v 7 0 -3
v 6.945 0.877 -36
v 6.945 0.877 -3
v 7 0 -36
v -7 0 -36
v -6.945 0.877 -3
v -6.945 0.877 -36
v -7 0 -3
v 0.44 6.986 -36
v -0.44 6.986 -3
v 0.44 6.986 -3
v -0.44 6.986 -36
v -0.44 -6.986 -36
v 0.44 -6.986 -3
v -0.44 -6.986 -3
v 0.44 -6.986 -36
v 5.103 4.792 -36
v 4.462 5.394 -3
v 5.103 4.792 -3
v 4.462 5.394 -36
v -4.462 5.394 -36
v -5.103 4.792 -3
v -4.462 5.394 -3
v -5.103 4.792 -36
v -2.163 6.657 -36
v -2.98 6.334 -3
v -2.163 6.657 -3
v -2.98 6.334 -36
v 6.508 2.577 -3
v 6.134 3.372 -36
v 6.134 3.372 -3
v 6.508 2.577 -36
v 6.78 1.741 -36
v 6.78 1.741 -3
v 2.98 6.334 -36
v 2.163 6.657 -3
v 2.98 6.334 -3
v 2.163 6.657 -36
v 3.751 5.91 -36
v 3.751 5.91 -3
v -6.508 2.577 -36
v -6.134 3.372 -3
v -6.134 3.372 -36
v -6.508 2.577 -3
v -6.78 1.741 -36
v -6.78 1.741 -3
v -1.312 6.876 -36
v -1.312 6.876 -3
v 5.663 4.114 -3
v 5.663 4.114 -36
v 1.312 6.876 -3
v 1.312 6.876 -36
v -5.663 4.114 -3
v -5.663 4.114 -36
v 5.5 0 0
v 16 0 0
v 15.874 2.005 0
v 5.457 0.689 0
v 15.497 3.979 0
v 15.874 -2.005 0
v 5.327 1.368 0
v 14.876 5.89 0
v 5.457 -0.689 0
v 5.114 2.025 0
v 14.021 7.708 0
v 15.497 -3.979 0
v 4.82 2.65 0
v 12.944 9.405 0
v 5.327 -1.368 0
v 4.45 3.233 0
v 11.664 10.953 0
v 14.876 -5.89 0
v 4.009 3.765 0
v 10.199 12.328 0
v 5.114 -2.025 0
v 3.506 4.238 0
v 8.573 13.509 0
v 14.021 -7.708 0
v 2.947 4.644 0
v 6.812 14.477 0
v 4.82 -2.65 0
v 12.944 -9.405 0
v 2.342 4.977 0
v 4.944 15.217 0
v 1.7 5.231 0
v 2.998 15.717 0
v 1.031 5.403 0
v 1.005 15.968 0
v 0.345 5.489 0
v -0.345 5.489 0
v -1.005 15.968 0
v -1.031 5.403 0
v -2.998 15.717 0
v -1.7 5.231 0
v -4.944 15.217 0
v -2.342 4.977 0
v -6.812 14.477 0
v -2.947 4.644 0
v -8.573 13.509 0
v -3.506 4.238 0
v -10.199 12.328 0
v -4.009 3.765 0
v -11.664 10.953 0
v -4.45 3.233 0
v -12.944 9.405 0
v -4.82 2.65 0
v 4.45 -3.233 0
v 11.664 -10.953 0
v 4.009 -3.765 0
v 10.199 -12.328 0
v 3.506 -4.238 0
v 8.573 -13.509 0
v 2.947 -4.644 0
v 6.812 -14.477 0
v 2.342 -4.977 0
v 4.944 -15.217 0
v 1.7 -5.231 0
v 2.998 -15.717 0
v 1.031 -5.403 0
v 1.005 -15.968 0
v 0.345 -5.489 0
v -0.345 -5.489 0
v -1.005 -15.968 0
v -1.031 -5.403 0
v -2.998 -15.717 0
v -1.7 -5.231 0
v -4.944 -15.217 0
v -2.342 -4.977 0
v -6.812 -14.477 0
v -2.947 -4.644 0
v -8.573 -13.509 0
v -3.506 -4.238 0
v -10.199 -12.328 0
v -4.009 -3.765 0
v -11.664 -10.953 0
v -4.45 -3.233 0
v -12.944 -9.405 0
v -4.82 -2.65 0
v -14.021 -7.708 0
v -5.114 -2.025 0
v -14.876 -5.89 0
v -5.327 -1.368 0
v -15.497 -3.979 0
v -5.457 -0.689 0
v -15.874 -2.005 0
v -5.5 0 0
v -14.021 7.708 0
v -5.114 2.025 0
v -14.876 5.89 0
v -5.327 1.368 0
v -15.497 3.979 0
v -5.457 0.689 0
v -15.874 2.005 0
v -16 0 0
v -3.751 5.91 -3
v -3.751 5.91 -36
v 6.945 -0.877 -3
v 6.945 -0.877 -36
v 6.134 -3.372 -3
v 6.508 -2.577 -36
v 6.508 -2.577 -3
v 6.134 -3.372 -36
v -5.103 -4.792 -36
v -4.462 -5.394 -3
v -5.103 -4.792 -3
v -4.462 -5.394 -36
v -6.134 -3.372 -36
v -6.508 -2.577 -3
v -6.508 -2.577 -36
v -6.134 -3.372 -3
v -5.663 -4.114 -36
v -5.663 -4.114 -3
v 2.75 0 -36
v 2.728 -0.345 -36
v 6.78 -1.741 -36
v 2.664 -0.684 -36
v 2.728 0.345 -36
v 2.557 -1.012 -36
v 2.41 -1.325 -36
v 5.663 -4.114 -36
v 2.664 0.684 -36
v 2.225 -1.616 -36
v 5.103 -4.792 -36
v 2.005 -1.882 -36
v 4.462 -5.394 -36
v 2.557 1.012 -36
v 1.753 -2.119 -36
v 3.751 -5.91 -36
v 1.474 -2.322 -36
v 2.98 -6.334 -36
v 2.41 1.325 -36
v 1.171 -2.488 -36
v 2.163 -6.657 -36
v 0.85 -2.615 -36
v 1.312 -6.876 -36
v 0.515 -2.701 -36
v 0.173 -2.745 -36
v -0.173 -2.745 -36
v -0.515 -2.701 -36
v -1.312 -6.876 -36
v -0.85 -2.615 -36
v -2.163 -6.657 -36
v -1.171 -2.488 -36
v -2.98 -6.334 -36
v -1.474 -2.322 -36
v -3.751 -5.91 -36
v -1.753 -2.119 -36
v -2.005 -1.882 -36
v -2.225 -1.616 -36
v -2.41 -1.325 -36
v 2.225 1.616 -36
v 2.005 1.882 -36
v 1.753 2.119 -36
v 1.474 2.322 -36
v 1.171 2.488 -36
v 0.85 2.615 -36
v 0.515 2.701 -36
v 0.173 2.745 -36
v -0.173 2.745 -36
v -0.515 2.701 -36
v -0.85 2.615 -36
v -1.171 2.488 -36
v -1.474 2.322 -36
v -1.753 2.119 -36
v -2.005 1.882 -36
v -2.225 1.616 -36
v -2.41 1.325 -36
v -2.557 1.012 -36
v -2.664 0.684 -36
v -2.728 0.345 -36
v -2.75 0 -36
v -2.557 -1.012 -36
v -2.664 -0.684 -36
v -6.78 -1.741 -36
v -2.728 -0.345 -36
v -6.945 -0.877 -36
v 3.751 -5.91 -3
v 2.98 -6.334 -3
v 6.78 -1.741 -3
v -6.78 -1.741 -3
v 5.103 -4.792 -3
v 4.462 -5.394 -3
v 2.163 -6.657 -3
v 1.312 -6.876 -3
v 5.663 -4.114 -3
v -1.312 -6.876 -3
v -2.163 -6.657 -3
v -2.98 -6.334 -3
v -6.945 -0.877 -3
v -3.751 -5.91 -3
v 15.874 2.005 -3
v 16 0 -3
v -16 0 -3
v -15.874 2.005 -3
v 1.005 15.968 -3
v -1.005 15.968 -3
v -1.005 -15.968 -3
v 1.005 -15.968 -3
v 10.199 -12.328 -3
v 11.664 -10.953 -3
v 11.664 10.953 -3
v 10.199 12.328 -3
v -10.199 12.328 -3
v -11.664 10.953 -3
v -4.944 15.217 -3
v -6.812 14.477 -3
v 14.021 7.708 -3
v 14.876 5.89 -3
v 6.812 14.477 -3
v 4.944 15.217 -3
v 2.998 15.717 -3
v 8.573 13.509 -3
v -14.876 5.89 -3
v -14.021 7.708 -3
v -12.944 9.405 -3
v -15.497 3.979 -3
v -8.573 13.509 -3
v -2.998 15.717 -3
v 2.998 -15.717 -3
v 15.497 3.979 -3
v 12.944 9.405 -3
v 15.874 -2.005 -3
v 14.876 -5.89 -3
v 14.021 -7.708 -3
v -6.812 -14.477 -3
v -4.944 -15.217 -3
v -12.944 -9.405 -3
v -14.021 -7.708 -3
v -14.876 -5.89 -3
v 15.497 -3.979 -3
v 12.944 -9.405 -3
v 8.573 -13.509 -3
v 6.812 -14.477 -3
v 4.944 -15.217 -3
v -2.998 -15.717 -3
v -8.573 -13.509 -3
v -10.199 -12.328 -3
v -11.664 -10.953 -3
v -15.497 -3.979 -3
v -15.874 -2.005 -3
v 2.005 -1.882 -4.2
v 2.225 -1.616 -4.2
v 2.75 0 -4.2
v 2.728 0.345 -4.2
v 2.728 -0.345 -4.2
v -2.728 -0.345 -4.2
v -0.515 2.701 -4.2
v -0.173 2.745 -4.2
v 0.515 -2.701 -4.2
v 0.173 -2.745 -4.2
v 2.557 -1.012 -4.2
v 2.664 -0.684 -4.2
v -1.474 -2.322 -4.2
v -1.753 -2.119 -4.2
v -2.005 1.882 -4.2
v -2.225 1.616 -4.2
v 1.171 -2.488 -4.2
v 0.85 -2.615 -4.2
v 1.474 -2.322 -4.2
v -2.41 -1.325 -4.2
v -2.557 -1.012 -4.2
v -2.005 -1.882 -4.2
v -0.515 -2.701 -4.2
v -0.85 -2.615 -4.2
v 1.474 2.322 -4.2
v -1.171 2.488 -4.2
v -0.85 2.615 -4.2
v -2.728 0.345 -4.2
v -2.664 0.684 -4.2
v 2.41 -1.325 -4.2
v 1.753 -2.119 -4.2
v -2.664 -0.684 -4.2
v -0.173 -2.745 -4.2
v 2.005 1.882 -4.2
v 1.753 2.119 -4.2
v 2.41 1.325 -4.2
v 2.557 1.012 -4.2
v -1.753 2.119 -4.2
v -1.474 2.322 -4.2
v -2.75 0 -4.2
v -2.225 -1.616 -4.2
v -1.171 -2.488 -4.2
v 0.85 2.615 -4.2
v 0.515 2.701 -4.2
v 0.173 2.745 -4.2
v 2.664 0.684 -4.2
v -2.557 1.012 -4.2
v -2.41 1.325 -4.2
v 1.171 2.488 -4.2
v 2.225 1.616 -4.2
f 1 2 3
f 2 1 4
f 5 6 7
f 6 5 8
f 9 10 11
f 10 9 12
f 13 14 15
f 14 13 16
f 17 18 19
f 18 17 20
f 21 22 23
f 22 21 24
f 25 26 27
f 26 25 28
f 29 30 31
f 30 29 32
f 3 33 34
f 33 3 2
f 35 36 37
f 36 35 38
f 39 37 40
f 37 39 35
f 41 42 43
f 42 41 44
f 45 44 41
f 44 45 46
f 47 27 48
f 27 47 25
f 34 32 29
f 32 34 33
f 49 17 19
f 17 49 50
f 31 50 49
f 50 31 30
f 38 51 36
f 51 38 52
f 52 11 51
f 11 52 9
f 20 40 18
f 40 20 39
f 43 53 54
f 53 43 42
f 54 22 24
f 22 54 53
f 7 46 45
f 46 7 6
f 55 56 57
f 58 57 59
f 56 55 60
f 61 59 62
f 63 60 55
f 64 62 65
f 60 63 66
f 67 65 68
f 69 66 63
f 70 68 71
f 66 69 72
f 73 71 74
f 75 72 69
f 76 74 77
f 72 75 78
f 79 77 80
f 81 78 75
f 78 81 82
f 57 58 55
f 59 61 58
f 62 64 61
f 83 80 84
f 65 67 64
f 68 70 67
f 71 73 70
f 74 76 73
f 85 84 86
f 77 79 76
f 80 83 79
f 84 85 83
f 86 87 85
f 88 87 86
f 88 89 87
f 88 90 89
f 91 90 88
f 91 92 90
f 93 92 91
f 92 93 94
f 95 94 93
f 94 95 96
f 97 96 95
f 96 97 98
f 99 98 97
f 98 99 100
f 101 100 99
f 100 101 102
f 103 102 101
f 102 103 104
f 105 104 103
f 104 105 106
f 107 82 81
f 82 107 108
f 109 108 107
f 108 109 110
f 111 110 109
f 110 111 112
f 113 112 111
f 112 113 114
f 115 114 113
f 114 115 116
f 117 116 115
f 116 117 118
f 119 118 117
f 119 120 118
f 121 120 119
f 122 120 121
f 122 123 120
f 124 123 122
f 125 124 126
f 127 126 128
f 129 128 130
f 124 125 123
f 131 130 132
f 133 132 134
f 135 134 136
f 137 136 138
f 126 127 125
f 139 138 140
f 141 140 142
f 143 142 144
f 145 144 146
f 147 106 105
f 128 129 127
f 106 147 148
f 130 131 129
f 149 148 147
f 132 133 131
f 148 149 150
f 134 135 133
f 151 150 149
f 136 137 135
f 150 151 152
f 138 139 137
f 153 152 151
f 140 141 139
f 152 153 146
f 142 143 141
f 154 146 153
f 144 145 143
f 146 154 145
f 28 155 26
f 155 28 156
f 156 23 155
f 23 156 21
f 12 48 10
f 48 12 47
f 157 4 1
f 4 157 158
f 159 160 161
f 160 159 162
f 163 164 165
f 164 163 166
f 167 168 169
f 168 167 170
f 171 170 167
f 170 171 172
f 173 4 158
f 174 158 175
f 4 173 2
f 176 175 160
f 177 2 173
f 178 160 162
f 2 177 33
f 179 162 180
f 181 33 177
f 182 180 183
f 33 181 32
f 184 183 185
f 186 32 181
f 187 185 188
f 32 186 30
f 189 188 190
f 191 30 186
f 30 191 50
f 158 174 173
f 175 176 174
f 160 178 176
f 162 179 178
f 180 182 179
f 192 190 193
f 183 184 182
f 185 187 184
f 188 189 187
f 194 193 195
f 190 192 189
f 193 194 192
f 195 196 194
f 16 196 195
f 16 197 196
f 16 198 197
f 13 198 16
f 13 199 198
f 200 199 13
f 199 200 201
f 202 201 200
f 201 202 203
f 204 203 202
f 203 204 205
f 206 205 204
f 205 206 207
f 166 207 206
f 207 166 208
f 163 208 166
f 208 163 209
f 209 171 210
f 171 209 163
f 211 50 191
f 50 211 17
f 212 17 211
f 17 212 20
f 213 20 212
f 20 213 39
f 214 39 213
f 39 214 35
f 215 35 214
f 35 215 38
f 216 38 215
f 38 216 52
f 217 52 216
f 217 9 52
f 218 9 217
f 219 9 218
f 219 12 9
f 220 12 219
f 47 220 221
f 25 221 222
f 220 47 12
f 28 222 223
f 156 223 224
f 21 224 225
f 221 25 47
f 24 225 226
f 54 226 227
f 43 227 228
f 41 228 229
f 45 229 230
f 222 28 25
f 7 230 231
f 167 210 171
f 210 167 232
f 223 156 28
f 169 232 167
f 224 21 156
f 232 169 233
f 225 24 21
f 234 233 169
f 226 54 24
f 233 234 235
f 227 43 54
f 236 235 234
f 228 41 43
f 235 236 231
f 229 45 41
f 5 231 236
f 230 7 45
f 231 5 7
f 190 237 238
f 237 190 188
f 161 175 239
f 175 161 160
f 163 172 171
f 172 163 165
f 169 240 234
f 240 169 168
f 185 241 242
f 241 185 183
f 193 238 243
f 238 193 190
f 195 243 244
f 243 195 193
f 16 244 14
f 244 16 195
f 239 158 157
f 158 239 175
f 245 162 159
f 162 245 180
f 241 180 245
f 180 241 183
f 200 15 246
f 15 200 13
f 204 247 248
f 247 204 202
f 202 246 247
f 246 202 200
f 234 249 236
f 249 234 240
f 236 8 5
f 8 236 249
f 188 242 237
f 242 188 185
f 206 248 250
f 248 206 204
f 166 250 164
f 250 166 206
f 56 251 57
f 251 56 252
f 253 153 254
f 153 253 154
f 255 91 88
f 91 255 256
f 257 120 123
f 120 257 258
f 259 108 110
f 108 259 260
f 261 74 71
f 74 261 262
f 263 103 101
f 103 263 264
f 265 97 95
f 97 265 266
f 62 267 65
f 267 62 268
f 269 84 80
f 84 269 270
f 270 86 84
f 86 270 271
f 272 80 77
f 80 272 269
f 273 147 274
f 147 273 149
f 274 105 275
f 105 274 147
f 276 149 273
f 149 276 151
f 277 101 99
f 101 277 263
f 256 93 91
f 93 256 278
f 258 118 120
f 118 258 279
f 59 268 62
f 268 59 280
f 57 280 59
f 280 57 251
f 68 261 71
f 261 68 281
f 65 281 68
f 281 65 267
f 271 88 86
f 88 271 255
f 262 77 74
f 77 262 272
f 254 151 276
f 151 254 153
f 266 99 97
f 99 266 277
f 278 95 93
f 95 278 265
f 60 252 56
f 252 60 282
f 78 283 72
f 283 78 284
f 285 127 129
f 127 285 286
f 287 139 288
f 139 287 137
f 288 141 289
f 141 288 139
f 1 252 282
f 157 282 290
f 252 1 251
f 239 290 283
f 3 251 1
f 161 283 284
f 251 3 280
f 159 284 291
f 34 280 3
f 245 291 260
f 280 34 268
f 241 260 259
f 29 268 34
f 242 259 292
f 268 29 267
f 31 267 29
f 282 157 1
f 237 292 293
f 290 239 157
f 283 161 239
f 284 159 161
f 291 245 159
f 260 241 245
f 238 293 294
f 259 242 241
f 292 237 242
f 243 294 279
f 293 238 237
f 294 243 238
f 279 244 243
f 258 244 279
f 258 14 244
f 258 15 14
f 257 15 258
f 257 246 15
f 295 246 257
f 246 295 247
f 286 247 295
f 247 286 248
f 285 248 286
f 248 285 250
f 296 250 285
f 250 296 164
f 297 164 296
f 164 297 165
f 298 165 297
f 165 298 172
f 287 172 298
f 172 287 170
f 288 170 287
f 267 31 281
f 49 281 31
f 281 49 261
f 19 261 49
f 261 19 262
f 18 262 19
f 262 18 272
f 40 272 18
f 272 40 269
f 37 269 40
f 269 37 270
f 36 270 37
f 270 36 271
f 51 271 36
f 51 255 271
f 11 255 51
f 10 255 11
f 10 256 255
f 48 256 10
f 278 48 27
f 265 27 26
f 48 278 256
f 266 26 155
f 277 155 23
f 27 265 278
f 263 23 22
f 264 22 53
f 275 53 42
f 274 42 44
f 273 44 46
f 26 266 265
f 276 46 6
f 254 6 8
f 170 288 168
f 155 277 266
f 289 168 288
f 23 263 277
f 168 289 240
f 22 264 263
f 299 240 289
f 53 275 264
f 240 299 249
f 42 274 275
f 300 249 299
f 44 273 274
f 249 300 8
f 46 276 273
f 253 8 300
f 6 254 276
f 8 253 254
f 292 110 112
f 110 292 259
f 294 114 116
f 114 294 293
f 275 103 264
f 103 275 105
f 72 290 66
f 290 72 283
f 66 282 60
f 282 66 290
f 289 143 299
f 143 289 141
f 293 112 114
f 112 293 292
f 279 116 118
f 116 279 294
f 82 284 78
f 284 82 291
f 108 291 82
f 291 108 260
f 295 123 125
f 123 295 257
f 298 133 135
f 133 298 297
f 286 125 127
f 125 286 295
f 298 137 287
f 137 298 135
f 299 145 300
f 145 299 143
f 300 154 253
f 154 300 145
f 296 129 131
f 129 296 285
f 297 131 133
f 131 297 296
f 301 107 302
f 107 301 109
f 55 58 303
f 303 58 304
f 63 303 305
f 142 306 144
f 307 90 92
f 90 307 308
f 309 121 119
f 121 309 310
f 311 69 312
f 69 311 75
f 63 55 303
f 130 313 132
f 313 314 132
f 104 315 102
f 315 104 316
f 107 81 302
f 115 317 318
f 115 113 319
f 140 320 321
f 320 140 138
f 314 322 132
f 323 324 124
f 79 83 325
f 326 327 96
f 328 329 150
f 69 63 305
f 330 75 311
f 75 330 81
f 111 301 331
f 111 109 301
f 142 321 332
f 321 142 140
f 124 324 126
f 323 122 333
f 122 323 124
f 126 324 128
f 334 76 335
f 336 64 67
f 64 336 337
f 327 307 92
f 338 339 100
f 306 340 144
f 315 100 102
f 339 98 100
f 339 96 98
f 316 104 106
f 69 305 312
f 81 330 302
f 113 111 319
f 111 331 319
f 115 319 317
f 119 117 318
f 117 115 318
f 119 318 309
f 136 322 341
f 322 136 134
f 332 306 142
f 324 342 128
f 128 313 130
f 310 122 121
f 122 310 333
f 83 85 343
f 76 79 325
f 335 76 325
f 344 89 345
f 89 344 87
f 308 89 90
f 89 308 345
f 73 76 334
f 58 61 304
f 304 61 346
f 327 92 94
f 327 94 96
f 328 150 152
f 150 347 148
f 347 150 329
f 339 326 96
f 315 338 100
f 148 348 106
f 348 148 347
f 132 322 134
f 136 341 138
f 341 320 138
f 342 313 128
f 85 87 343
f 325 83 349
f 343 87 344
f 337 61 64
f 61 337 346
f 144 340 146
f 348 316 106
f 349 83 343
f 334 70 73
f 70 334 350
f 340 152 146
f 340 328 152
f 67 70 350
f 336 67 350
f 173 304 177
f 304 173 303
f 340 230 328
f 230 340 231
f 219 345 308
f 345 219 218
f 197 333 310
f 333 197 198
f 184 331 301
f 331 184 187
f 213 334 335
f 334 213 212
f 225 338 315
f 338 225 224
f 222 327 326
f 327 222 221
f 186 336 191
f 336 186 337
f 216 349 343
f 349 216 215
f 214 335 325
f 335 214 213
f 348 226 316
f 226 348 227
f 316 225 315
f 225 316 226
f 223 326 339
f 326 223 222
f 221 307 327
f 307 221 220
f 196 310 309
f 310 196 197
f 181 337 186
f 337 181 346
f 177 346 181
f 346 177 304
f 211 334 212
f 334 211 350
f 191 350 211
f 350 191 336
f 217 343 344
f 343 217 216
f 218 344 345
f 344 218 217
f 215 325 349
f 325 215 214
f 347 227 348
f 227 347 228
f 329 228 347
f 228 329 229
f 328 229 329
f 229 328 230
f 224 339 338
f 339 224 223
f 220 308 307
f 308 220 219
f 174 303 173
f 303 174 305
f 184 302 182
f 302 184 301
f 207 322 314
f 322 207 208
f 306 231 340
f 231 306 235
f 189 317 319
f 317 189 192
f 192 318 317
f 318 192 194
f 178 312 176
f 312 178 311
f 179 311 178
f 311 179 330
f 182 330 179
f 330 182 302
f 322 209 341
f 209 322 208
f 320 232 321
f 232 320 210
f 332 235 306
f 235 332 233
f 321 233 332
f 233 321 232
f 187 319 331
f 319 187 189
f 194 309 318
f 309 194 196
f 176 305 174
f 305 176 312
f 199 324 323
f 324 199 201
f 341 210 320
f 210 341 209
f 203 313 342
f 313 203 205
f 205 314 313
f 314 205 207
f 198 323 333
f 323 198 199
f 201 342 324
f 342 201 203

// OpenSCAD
$fn = 50;


difference() {
	union() {
		translate(v = [0, 0, -36.0000000000]) {
			cylinder(h = 36, r = 7.0000000000);
		}
		translate(v = [0, 0, -3.0000000000]) {
			cylinder(h = 3, r = 16.0000000000);
		}
	}
	union() {
		translate(v = [0, 0, 0]) {
			rotate(a = [0, 0, 0]) {
				difference() {
					union() {
						#translate(v = [0, 0, -36.0000000000]) {
							cylinder(h = 36, r = 2.2500000000);
						}
						#translate(v = [0, 0, -4.2000000000]) {
							cylinder(h = 4.2000000000, r = 7.0000000000, r1 = 2.7500000000, r2 = 5.5000000000);
						}
						#translate(v = [0, 0, -36.0000000000]) {
							cylinder(h = 36, r = 2.7500000000);
						}
						#translate(v = [0, 0, -36.0000000000]) {
							cylinder(h = 36, r = 2.2500000000);
						}
					}
					union();
				}
			}
		}
	}
}
